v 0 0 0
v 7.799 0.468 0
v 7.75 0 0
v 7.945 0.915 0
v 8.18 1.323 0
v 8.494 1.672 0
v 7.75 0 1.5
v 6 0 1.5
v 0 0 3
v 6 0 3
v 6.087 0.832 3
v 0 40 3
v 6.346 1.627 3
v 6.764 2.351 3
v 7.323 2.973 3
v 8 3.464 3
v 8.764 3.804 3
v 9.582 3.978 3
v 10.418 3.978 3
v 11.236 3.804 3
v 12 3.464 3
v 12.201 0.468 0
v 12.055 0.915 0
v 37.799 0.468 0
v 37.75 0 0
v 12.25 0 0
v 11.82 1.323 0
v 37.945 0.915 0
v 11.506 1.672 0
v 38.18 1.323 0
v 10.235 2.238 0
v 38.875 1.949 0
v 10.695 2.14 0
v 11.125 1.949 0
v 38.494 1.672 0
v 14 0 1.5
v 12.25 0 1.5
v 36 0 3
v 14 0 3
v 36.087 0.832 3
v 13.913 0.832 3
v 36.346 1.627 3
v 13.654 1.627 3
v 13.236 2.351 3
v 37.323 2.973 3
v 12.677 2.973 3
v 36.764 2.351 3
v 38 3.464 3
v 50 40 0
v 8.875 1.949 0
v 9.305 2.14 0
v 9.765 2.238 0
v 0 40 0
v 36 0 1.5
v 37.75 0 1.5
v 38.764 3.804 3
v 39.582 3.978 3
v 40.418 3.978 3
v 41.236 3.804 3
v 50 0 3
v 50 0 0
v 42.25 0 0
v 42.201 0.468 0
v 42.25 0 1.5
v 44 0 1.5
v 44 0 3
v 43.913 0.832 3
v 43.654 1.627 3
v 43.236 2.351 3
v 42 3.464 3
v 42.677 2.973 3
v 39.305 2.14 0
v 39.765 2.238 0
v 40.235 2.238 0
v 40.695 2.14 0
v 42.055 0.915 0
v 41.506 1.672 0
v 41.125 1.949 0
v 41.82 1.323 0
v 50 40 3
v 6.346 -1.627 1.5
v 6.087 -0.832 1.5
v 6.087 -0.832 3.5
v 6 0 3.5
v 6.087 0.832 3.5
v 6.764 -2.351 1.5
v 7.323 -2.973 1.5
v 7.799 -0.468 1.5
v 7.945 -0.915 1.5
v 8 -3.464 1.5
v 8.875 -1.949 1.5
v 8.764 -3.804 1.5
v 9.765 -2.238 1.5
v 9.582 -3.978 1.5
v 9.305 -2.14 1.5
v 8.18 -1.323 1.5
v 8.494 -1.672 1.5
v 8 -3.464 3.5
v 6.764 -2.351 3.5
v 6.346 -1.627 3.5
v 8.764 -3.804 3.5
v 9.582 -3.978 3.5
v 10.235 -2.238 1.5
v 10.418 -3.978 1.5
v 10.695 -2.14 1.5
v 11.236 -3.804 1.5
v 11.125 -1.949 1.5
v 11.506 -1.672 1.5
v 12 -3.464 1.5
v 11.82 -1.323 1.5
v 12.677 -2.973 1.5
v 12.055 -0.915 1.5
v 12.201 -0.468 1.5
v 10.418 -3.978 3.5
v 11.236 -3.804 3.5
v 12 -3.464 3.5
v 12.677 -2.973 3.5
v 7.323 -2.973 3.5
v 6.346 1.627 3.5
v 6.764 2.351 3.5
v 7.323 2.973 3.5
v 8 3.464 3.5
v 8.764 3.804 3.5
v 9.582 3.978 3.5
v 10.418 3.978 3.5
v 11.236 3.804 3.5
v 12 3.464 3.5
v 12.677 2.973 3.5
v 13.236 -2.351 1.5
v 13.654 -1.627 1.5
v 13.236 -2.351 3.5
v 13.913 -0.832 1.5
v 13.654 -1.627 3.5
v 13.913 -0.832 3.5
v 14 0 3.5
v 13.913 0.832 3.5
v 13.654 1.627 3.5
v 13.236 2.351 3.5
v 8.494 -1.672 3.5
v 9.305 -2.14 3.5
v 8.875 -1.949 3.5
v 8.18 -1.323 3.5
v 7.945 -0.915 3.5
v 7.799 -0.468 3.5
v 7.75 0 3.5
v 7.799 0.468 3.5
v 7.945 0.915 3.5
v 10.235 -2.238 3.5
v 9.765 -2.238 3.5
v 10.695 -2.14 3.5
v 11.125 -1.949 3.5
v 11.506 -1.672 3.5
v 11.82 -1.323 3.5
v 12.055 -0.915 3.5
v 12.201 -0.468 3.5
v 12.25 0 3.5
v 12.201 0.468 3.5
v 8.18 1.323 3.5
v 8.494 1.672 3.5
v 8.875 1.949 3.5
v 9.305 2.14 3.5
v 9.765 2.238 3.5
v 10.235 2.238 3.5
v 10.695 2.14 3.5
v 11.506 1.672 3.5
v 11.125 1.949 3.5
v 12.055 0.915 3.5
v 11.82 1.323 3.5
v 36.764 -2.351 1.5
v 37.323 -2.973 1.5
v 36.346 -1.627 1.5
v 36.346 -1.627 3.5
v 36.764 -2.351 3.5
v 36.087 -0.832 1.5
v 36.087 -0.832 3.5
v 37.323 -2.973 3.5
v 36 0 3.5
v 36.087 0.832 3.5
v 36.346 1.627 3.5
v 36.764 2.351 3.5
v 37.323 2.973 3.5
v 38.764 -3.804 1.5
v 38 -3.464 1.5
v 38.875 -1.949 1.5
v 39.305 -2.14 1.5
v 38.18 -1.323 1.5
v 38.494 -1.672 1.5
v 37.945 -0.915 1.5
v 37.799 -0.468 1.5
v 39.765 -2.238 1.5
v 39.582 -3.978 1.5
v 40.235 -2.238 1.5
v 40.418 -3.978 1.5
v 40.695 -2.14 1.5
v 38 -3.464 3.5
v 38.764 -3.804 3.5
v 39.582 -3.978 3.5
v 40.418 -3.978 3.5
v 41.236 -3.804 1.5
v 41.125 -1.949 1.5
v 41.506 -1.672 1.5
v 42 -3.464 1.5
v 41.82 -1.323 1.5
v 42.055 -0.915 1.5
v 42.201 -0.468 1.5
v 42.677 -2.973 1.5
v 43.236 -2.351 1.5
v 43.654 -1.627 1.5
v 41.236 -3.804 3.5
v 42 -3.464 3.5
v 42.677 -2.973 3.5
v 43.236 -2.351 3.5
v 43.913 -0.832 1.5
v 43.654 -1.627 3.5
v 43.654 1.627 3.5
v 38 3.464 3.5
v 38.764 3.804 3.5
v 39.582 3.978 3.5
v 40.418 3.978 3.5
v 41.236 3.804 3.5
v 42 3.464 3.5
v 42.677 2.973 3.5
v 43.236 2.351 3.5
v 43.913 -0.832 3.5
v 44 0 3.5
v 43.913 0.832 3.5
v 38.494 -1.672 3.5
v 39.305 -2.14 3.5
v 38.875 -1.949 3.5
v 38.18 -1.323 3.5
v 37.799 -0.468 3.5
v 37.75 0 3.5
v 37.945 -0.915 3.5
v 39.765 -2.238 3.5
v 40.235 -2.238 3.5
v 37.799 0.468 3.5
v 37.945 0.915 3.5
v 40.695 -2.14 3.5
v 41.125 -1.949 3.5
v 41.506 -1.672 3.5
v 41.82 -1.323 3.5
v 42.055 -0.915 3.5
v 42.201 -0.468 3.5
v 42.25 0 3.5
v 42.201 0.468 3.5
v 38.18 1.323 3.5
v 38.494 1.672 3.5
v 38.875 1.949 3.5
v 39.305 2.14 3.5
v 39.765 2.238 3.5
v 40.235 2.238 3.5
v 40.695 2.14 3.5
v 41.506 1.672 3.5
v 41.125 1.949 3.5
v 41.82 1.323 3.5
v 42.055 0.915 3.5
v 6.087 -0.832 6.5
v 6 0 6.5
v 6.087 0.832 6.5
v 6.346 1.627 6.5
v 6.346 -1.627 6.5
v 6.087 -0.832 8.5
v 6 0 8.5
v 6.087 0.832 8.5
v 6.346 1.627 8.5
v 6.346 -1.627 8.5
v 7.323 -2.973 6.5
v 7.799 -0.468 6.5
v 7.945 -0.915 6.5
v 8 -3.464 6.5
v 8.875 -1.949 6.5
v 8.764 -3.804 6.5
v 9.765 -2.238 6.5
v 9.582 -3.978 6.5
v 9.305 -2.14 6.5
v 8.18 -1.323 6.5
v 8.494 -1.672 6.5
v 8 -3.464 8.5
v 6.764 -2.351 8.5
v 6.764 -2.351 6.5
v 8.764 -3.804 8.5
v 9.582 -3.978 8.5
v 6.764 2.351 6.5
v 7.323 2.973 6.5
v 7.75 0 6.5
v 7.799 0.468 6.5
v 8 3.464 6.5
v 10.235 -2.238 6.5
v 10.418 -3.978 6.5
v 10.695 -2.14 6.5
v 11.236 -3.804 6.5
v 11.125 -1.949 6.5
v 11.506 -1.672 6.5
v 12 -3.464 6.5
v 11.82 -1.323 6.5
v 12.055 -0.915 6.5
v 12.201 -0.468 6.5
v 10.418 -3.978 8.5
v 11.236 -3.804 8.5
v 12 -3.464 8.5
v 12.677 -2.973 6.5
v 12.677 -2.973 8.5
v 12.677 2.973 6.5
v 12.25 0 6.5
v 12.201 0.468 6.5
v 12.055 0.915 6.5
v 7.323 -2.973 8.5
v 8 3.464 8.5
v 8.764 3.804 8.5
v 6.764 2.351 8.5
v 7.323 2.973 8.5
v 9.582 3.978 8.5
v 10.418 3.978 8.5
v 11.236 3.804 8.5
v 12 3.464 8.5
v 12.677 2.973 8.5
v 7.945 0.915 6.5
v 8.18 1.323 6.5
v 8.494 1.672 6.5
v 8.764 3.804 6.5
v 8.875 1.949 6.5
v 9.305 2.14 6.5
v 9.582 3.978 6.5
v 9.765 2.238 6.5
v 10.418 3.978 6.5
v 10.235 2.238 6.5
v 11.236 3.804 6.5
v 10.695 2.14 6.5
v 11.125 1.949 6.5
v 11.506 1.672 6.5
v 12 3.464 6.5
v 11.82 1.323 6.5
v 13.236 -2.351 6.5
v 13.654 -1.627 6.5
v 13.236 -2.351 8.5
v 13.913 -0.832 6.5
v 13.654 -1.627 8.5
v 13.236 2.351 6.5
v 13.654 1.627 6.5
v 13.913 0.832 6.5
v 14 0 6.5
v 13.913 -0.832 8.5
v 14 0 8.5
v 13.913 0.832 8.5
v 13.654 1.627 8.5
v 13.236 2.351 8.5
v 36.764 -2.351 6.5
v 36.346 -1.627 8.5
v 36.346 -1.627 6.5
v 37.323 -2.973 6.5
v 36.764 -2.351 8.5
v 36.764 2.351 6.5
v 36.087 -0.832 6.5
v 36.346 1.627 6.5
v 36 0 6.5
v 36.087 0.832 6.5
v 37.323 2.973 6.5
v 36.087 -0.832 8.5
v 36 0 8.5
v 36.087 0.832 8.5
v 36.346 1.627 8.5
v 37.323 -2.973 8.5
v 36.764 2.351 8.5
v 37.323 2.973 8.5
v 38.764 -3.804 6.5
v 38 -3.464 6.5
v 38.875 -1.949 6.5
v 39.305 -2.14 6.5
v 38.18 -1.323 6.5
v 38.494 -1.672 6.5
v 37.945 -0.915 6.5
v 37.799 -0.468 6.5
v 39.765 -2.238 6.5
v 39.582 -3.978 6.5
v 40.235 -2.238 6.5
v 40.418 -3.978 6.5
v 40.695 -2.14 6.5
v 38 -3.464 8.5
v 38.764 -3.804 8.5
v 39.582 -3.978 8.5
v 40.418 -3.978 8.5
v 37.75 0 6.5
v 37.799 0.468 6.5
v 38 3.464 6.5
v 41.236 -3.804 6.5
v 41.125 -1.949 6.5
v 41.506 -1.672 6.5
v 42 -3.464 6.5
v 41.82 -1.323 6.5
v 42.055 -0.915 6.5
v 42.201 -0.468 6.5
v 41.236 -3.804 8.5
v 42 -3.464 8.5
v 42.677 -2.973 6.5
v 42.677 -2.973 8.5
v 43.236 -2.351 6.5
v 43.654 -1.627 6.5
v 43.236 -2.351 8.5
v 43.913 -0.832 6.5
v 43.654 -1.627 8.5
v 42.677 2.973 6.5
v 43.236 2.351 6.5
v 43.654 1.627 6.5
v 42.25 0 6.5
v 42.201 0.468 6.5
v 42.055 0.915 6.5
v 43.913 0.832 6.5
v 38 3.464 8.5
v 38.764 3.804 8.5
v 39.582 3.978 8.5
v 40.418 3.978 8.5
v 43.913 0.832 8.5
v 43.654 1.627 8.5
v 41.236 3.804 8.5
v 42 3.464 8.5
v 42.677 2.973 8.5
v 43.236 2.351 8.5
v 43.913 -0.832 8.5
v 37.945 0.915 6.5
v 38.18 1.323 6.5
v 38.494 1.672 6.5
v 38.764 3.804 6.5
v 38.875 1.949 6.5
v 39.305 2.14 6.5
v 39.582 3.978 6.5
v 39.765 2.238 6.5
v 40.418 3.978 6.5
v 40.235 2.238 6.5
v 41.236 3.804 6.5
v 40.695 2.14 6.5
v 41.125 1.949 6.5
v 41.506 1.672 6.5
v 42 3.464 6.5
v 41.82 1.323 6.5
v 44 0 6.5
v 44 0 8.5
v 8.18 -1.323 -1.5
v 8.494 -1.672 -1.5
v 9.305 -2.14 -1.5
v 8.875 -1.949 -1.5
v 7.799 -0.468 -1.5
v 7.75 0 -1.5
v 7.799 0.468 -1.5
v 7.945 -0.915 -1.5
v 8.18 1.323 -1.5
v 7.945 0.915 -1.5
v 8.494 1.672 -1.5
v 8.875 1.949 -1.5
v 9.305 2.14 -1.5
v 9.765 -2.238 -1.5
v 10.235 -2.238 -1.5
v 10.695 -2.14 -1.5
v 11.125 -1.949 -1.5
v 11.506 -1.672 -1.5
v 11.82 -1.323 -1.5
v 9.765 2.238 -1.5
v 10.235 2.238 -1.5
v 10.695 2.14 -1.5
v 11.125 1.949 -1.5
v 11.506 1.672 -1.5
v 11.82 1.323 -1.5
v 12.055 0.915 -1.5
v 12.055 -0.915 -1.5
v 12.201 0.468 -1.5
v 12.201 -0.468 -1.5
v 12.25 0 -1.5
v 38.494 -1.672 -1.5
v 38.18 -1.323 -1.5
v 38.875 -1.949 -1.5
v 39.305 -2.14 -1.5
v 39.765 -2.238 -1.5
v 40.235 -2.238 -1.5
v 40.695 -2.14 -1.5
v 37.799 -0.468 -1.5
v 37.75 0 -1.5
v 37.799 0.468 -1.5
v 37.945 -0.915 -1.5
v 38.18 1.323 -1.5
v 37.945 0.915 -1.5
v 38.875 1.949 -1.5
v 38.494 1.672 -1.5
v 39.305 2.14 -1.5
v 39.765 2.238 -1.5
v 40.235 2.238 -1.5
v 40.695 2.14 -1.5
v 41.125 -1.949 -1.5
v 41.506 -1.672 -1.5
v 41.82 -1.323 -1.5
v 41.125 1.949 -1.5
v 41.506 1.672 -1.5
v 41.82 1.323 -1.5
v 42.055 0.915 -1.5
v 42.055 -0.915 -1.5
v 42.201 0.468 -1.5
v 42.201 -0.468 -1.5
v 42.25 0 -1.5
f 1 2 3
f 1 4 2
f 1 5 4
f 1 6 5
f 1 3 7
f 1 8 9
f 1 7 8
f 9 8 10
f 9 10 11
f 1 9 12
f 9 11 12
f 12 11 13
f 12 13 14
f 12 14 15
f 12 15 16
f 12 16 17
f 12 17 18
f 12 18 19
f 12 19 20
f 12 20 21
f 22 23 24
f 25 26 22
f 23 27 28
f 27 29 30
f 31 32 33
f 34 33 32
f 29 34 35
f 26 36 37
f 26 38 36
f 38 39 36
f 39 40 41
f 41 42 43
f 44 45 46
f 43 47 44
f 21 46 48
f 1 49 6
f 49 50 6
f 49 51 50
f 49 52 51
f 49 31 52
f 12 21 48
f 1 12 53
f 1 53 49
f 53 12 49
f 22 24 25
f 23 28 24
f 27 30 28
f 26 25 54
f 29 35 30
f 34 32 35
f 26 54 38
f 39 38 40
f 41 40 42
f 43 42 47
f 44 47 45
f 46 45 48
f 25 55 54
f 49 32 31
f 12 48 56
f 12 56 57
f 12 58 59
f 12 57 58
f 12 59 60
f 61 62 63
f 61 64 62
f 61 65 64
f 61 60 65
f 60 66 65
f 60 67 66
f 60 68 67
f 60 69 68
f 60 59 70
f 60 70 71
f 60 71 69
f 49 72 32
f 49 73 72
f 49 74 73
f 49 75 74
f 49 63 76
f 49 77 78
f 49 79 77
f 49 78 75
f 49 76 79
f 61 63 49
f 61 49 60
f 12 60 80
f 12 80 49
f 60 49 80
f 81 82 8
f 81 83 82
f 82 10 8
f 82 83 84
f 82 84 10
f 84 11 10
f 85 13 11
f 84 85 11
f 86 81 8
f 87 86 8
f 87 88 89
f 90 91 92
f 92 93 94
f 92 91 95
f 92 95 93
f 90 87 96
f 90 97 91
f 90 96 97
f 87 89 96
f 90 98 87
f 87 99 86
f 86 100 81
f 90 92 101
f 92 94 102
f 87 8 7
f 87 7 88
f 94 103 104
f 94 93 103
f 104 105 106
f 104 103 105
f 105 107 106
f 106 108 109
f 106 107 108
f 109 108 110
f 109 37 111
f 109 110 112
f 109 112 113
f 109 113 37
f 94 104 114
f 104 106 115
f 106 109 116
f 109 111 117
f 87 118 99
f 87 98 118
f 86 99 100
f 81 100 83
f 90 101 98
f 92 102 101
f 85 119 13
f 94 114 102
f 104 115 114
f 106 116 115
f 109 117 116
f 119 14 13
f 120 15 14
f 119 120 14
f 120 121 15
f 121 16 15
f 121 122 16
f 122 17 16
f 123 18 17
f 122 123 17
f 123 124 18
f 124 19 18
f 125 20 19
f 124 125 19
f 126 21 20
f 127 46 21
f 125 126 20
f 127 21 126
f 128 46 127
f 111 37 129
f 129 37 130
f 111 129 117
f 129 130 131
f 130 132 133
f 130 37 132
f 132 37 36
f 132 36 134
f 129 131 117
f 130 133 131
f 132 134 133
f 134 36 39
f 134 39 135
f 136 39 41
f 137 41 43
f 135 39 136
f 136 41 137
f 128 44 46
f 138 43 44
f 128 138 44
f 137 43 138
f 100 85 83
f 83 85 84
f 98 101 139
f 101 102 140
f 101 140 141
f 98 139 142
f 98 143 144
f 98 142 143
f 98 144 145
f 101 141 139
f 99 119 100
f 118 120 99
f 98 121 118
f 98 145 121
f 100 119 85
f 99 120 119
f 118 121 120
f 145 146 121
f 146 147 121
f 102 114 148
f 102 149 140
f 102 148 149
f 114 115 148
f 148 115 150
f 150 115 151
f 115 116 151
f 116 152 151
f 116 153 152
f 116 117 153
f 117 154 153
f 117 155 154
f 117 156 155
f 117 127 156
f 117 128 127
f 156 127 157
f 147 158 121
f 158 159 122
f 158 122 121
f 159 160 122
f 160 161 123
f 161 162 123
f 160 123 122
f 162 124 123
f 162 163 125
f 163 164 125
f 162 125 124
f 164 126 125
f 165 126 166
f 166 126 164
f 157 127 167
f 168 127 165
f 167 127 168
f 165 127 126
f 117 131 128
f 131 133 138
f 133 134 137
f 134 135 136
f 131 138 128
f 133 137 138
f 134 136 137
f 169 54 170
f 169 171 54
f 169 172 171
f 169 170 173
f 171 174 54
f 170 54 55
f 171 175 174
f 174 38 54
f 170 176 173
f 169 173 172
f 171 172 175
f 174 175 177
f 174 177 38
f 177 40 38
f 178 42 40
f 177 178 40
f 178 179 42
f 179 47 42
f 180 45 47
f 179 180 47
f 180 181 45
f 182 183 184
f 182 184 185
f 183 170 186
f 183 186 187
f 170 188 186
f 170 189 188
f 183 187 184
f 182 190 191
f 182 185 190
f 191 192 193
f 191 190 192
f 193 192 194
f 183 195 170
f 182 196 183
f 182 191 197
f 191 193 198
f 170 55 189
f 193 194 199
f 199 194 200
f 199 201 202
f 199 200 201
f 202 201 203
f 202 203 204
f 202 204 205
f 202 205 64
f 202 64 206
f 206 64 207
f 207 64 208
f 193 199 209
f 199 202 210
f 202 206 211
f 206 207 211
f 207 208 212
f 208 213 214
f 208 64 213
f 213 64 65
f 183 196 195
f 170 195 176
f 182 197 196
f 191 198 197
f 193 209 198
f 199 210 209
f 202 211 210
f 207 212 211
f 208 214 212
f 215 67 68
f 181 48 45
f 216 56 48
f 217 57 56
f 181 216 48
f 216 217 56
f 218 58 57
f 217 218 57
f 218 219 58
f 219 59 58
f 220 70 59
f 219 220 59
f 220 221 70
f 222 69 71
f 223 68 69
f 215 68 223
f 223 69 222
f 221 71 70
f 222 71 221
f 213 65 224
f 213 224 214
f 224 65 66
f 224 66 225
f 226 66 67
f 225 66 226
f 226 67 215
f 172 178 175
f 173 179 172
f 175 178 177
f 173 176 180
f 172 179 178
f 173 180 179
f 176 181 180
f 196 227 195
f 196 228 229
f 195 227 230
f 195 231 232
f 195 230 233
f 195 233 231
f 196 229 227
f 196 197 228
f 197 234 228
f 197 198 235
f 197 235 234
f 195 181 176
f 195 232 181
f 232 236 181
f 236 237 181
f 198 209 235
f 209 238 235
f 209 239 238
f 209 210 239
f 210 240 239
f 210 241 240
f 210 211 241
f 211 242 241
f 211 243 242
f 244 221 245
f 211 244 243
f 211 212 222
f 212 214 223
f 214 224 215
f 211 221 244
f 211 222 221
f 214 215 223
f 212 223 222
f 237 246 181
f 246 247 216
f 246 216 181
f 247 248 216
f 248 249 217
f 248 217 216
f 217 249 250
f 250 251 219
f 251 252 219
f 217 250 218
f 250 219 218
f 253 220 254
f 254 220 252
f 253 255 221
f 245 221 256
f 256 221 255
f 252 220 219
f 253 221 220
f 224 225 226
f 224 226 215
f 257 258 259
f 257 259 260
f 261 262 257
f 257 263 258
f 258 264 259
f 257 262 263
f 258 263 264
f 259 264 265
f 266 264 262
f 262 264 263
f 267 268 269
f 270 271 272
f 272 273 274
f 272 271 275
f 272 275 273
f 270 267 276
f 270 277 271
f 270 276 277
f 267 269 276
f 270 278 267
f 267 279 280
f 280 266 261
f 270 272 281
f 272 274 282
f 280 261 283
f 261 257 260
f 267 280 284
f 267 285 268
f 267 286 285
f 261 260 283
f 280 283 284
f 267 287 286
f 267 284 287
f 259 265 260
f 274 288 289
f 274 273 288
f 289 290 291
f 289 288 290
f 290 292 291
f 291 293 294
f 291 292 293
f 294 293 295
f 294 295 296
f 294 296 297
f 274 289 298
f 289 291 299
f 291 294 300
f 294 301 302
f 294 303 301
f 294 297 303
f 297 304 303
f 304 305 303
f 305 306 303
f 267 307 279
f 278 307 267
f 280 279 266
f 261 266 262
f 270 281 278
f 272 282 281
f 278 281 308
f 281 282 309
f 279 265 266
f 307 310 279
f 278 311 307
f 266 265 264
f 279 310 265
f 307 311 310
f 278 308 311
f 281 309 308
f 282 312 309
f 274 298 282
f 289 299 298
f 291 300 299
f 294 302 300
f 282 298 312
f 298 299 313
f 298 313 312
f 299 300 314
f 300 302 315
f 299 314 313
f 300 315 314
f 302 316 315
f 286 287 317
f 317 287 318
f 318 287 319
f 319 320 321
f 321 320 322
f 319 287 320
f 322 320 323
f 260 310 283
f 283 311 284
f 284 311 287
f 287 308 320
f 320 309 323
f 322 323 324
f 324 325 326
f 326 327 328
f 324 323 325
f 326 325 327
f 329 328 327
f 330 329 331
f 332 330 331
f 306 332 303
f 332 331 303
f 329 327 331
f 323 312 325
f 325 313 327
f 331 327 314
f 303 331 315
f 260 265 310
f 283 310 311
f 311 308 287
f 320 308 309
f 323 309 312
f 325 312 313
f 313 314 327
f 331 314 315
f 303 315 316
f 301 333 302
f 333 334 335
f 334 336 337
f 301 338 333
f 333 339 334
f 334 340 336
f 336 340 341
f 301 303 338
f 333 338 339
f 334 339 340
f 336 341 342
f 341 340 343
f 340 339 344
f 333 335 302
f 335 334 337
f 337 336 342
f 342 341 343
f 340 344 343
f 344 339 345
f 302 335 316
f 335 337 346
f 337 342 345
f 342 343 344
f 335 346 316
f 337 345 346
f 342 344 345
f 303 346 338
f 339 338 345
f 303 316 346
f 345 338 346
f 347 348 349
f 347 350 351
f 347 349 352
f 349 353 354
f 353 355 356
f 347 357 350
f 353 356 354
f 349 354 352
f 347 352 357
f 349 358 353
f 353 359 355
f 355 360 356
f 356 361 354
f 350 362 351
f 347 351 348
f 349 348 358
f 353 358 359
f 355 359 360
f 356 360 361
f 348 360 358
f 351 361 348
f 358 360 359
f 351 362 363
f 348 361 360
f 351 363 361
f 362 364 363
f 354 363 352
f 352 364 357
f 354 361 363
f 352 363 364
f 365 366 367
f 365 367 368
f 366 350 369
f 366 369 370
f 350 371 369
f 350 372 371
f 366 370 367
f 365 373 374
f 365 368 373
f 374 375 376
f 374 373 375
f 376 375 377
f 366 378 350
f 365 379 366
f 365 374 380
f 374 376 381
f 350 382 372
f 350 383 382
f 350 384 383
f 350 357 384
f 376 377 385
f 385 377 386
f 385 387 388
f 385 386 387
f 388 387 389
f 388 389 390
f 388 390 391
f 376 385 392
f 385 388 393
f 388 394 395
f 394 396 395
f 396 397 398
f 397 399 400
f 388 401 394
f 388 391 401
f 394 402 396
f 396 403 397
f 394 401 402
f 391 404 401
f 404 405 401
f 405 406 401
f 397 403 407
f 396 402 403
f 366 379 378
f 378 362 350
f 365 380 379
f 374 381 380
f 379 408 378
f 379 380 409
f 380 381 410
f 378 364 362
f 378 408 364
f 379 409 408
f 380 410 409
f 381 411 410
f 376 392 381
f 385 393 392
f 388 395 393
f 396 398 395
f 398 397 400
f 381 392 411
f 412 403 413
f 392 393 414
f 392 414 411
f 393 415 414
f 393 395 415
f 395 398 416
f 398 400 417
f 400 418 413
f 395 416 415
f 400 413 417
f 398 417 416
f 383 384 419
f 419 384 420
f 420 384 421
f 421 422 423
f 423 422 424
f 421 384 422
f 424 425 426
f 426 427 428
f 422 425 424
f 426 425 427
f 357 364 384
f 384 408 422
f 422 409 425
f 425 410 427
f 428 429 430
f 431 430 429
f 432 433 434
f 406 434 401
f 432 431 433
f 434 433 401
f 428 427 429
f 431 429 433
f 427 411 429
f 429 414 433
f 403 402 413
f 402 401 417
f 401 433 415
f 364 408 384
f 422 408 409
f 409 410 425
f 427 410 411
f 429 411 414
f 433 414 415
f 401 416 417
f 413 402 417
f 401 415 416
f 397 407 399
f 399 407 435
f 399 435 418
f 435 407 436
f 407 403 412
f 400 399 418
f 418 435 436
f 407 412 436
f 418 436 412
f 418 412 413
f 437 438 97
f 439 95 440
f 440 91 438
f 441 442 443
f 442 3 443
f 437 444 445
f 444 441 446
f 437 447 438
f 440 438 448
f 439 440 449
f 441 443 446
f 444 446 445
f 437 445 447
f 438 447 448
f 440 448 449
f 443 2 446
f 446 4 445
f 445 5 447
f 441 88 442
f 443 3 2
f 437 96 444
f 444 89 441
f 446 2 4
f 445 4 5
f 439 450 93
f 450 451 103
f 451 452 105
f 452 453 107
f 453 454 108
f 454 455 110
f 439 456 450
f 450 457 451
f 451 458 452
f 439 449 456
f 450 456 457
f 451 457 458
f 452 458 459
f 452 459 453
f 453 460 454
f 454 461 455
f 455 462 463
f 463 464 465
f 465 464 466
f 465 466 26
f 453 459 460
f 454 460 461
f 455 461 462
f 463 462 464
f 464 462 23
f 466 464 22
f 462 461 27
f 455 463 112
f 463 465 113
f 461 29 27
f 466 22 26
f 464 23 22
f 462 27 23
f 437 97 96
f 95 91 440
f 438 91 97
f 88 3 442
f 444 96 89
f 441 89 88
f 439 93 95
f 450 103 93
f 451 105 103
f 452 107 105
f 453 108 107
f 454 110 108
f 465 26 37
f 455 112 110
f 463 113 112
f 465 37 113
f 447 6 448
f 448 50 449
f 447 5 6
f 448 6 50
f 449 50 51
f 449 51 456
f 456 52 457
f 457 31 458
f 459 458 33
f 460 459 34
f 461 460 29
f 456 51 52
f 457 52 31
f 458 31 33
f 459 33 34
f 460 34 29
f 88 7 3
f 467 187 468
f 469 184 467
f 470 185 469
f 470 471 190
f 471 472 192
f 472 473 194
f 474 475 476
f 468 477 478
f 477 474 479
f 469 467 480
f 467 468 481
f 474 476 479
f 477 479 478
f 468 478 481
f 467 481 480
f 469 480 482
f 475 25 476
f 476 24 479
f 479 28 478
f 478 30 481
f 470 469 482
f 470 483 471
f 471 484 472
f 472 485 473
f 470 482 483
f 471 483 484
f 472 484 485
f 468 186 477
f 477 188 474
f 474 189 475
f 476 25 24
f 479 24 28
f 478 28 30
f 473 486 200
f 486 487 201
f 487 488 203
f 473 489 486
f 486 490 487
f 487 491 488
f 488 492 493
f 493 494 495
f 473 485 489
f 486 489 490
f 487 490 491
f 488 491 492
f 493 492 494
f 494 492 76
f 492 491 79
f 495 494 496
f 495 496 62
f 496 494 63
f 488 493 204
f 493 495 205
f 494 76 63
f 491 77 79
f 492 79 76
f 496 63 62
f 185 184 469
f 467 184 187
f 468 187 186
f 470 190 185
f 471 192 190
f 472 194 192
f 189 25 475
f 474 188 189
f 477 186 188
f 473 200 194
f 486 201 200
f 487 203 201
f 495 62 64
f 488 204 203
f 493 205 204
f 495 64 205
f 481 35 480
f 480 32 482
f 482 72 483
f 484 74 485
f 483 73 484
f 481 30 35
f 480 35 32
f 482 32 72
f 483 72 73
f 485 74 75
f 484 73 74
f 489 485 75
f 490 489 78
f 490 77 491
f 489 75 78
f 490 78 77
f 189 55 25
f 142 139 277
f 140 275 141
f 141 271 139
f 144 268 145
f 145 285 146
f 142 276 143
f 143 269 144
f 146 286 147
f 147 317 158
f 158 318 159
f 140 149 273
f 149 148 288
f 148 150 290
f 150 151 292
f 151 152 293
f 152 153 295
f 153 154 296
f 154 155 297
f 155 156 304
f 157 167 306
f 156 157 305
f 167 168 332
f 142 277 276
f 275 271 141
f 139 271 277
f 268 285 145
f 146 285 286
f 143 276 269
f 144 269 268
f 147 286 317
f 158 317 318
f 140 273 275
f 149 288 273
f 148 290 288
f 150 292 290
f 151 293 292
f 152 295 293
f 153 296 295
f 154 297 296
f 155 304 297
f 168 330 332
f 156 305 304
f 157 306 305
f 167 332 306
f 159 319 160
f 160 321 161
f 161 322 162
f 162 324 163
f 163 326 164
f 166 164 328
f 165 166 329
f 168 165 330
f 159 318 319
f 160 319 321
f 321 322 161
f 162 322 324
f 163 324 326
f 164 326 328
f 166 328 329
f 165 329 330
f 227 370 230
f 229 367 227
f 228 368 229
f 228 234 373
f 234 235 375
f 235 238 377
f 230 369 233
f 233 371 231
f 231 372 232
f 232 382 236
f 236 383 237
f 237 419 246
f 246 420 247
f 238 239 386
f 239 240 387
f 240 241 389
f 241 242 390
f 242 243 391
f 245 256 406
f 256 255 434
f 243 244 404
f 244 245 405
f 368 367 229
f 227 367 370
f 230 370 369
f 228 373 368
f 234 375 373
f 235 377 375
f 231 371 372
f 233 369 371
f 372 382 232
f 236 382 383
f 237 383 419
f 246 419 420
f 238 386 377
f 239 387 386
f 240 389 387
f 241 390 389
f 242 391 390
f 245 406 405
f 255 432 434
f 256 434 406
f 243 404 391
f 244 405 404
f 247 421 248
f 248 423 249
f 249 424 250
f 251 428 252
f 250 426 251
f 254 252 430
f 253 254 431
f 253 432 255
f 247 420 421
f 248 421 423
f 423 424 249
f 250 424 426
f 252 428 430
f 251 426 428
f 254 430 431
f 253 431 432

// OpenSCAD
// L-Bracket Parameters
bracket_width  = 50;   // Width (X)
bracket_depth  = 40;   // Depth of horizontal flange (Y)
bracket_height = 40;   // Height of vertical flange (Z)
thickness      = 3;    // Plate thickness

// Hole Parameters
hole_dia       = 4.5;   // Thread diameter
counter_dia    = 8;     // Countersink diameter
counter_depth  = 2;     // Depth of countersink
hole_offset    = 10;    // Distance from edge to hole center along flange

// Helper function: create a hole with countersink
module threaded_hole() {
    // Countersink (extruded into the plate)
    cylinder(h=counter_depth, r=counter_dia/2, $fn=30);
    // Thread hole (full depth of the plate)
    translate([0, 0, -thickness]) 
        cylinder(h=thickness + counter_depth, r=hole_dia/2, $fn=30);
}

// Main bracket
module l_bracket() {
    difference() {
        // Horizontal flange (Y direction)
        cube([bracket_width, bracket_depth, thickness]);

        // Vertical flange (Z direction) positioned at the end of horizontal flange
        translate([0, 0, thickness])
            rotate([90, 0, 0])   // Align along Z
                cube([bracket_width, bracket_height, thickness]);
    }
}

// Position holes on each face
module place_holes() {
    // Horizontal face (Y positive)
    for(x = [hole_offset, bracket_width - hole_offset])
        translate([x, 0, thickness/2]) threaded_hole();

    // Vertical face (Z positive)
    for(x = [hole_offset, bracket_width - hole_offset])
        translate([x, 0, thickness + counter_depth + thickness/2]) threaded_hole();
}

// Assemble
l_bracket();
place_holes();
